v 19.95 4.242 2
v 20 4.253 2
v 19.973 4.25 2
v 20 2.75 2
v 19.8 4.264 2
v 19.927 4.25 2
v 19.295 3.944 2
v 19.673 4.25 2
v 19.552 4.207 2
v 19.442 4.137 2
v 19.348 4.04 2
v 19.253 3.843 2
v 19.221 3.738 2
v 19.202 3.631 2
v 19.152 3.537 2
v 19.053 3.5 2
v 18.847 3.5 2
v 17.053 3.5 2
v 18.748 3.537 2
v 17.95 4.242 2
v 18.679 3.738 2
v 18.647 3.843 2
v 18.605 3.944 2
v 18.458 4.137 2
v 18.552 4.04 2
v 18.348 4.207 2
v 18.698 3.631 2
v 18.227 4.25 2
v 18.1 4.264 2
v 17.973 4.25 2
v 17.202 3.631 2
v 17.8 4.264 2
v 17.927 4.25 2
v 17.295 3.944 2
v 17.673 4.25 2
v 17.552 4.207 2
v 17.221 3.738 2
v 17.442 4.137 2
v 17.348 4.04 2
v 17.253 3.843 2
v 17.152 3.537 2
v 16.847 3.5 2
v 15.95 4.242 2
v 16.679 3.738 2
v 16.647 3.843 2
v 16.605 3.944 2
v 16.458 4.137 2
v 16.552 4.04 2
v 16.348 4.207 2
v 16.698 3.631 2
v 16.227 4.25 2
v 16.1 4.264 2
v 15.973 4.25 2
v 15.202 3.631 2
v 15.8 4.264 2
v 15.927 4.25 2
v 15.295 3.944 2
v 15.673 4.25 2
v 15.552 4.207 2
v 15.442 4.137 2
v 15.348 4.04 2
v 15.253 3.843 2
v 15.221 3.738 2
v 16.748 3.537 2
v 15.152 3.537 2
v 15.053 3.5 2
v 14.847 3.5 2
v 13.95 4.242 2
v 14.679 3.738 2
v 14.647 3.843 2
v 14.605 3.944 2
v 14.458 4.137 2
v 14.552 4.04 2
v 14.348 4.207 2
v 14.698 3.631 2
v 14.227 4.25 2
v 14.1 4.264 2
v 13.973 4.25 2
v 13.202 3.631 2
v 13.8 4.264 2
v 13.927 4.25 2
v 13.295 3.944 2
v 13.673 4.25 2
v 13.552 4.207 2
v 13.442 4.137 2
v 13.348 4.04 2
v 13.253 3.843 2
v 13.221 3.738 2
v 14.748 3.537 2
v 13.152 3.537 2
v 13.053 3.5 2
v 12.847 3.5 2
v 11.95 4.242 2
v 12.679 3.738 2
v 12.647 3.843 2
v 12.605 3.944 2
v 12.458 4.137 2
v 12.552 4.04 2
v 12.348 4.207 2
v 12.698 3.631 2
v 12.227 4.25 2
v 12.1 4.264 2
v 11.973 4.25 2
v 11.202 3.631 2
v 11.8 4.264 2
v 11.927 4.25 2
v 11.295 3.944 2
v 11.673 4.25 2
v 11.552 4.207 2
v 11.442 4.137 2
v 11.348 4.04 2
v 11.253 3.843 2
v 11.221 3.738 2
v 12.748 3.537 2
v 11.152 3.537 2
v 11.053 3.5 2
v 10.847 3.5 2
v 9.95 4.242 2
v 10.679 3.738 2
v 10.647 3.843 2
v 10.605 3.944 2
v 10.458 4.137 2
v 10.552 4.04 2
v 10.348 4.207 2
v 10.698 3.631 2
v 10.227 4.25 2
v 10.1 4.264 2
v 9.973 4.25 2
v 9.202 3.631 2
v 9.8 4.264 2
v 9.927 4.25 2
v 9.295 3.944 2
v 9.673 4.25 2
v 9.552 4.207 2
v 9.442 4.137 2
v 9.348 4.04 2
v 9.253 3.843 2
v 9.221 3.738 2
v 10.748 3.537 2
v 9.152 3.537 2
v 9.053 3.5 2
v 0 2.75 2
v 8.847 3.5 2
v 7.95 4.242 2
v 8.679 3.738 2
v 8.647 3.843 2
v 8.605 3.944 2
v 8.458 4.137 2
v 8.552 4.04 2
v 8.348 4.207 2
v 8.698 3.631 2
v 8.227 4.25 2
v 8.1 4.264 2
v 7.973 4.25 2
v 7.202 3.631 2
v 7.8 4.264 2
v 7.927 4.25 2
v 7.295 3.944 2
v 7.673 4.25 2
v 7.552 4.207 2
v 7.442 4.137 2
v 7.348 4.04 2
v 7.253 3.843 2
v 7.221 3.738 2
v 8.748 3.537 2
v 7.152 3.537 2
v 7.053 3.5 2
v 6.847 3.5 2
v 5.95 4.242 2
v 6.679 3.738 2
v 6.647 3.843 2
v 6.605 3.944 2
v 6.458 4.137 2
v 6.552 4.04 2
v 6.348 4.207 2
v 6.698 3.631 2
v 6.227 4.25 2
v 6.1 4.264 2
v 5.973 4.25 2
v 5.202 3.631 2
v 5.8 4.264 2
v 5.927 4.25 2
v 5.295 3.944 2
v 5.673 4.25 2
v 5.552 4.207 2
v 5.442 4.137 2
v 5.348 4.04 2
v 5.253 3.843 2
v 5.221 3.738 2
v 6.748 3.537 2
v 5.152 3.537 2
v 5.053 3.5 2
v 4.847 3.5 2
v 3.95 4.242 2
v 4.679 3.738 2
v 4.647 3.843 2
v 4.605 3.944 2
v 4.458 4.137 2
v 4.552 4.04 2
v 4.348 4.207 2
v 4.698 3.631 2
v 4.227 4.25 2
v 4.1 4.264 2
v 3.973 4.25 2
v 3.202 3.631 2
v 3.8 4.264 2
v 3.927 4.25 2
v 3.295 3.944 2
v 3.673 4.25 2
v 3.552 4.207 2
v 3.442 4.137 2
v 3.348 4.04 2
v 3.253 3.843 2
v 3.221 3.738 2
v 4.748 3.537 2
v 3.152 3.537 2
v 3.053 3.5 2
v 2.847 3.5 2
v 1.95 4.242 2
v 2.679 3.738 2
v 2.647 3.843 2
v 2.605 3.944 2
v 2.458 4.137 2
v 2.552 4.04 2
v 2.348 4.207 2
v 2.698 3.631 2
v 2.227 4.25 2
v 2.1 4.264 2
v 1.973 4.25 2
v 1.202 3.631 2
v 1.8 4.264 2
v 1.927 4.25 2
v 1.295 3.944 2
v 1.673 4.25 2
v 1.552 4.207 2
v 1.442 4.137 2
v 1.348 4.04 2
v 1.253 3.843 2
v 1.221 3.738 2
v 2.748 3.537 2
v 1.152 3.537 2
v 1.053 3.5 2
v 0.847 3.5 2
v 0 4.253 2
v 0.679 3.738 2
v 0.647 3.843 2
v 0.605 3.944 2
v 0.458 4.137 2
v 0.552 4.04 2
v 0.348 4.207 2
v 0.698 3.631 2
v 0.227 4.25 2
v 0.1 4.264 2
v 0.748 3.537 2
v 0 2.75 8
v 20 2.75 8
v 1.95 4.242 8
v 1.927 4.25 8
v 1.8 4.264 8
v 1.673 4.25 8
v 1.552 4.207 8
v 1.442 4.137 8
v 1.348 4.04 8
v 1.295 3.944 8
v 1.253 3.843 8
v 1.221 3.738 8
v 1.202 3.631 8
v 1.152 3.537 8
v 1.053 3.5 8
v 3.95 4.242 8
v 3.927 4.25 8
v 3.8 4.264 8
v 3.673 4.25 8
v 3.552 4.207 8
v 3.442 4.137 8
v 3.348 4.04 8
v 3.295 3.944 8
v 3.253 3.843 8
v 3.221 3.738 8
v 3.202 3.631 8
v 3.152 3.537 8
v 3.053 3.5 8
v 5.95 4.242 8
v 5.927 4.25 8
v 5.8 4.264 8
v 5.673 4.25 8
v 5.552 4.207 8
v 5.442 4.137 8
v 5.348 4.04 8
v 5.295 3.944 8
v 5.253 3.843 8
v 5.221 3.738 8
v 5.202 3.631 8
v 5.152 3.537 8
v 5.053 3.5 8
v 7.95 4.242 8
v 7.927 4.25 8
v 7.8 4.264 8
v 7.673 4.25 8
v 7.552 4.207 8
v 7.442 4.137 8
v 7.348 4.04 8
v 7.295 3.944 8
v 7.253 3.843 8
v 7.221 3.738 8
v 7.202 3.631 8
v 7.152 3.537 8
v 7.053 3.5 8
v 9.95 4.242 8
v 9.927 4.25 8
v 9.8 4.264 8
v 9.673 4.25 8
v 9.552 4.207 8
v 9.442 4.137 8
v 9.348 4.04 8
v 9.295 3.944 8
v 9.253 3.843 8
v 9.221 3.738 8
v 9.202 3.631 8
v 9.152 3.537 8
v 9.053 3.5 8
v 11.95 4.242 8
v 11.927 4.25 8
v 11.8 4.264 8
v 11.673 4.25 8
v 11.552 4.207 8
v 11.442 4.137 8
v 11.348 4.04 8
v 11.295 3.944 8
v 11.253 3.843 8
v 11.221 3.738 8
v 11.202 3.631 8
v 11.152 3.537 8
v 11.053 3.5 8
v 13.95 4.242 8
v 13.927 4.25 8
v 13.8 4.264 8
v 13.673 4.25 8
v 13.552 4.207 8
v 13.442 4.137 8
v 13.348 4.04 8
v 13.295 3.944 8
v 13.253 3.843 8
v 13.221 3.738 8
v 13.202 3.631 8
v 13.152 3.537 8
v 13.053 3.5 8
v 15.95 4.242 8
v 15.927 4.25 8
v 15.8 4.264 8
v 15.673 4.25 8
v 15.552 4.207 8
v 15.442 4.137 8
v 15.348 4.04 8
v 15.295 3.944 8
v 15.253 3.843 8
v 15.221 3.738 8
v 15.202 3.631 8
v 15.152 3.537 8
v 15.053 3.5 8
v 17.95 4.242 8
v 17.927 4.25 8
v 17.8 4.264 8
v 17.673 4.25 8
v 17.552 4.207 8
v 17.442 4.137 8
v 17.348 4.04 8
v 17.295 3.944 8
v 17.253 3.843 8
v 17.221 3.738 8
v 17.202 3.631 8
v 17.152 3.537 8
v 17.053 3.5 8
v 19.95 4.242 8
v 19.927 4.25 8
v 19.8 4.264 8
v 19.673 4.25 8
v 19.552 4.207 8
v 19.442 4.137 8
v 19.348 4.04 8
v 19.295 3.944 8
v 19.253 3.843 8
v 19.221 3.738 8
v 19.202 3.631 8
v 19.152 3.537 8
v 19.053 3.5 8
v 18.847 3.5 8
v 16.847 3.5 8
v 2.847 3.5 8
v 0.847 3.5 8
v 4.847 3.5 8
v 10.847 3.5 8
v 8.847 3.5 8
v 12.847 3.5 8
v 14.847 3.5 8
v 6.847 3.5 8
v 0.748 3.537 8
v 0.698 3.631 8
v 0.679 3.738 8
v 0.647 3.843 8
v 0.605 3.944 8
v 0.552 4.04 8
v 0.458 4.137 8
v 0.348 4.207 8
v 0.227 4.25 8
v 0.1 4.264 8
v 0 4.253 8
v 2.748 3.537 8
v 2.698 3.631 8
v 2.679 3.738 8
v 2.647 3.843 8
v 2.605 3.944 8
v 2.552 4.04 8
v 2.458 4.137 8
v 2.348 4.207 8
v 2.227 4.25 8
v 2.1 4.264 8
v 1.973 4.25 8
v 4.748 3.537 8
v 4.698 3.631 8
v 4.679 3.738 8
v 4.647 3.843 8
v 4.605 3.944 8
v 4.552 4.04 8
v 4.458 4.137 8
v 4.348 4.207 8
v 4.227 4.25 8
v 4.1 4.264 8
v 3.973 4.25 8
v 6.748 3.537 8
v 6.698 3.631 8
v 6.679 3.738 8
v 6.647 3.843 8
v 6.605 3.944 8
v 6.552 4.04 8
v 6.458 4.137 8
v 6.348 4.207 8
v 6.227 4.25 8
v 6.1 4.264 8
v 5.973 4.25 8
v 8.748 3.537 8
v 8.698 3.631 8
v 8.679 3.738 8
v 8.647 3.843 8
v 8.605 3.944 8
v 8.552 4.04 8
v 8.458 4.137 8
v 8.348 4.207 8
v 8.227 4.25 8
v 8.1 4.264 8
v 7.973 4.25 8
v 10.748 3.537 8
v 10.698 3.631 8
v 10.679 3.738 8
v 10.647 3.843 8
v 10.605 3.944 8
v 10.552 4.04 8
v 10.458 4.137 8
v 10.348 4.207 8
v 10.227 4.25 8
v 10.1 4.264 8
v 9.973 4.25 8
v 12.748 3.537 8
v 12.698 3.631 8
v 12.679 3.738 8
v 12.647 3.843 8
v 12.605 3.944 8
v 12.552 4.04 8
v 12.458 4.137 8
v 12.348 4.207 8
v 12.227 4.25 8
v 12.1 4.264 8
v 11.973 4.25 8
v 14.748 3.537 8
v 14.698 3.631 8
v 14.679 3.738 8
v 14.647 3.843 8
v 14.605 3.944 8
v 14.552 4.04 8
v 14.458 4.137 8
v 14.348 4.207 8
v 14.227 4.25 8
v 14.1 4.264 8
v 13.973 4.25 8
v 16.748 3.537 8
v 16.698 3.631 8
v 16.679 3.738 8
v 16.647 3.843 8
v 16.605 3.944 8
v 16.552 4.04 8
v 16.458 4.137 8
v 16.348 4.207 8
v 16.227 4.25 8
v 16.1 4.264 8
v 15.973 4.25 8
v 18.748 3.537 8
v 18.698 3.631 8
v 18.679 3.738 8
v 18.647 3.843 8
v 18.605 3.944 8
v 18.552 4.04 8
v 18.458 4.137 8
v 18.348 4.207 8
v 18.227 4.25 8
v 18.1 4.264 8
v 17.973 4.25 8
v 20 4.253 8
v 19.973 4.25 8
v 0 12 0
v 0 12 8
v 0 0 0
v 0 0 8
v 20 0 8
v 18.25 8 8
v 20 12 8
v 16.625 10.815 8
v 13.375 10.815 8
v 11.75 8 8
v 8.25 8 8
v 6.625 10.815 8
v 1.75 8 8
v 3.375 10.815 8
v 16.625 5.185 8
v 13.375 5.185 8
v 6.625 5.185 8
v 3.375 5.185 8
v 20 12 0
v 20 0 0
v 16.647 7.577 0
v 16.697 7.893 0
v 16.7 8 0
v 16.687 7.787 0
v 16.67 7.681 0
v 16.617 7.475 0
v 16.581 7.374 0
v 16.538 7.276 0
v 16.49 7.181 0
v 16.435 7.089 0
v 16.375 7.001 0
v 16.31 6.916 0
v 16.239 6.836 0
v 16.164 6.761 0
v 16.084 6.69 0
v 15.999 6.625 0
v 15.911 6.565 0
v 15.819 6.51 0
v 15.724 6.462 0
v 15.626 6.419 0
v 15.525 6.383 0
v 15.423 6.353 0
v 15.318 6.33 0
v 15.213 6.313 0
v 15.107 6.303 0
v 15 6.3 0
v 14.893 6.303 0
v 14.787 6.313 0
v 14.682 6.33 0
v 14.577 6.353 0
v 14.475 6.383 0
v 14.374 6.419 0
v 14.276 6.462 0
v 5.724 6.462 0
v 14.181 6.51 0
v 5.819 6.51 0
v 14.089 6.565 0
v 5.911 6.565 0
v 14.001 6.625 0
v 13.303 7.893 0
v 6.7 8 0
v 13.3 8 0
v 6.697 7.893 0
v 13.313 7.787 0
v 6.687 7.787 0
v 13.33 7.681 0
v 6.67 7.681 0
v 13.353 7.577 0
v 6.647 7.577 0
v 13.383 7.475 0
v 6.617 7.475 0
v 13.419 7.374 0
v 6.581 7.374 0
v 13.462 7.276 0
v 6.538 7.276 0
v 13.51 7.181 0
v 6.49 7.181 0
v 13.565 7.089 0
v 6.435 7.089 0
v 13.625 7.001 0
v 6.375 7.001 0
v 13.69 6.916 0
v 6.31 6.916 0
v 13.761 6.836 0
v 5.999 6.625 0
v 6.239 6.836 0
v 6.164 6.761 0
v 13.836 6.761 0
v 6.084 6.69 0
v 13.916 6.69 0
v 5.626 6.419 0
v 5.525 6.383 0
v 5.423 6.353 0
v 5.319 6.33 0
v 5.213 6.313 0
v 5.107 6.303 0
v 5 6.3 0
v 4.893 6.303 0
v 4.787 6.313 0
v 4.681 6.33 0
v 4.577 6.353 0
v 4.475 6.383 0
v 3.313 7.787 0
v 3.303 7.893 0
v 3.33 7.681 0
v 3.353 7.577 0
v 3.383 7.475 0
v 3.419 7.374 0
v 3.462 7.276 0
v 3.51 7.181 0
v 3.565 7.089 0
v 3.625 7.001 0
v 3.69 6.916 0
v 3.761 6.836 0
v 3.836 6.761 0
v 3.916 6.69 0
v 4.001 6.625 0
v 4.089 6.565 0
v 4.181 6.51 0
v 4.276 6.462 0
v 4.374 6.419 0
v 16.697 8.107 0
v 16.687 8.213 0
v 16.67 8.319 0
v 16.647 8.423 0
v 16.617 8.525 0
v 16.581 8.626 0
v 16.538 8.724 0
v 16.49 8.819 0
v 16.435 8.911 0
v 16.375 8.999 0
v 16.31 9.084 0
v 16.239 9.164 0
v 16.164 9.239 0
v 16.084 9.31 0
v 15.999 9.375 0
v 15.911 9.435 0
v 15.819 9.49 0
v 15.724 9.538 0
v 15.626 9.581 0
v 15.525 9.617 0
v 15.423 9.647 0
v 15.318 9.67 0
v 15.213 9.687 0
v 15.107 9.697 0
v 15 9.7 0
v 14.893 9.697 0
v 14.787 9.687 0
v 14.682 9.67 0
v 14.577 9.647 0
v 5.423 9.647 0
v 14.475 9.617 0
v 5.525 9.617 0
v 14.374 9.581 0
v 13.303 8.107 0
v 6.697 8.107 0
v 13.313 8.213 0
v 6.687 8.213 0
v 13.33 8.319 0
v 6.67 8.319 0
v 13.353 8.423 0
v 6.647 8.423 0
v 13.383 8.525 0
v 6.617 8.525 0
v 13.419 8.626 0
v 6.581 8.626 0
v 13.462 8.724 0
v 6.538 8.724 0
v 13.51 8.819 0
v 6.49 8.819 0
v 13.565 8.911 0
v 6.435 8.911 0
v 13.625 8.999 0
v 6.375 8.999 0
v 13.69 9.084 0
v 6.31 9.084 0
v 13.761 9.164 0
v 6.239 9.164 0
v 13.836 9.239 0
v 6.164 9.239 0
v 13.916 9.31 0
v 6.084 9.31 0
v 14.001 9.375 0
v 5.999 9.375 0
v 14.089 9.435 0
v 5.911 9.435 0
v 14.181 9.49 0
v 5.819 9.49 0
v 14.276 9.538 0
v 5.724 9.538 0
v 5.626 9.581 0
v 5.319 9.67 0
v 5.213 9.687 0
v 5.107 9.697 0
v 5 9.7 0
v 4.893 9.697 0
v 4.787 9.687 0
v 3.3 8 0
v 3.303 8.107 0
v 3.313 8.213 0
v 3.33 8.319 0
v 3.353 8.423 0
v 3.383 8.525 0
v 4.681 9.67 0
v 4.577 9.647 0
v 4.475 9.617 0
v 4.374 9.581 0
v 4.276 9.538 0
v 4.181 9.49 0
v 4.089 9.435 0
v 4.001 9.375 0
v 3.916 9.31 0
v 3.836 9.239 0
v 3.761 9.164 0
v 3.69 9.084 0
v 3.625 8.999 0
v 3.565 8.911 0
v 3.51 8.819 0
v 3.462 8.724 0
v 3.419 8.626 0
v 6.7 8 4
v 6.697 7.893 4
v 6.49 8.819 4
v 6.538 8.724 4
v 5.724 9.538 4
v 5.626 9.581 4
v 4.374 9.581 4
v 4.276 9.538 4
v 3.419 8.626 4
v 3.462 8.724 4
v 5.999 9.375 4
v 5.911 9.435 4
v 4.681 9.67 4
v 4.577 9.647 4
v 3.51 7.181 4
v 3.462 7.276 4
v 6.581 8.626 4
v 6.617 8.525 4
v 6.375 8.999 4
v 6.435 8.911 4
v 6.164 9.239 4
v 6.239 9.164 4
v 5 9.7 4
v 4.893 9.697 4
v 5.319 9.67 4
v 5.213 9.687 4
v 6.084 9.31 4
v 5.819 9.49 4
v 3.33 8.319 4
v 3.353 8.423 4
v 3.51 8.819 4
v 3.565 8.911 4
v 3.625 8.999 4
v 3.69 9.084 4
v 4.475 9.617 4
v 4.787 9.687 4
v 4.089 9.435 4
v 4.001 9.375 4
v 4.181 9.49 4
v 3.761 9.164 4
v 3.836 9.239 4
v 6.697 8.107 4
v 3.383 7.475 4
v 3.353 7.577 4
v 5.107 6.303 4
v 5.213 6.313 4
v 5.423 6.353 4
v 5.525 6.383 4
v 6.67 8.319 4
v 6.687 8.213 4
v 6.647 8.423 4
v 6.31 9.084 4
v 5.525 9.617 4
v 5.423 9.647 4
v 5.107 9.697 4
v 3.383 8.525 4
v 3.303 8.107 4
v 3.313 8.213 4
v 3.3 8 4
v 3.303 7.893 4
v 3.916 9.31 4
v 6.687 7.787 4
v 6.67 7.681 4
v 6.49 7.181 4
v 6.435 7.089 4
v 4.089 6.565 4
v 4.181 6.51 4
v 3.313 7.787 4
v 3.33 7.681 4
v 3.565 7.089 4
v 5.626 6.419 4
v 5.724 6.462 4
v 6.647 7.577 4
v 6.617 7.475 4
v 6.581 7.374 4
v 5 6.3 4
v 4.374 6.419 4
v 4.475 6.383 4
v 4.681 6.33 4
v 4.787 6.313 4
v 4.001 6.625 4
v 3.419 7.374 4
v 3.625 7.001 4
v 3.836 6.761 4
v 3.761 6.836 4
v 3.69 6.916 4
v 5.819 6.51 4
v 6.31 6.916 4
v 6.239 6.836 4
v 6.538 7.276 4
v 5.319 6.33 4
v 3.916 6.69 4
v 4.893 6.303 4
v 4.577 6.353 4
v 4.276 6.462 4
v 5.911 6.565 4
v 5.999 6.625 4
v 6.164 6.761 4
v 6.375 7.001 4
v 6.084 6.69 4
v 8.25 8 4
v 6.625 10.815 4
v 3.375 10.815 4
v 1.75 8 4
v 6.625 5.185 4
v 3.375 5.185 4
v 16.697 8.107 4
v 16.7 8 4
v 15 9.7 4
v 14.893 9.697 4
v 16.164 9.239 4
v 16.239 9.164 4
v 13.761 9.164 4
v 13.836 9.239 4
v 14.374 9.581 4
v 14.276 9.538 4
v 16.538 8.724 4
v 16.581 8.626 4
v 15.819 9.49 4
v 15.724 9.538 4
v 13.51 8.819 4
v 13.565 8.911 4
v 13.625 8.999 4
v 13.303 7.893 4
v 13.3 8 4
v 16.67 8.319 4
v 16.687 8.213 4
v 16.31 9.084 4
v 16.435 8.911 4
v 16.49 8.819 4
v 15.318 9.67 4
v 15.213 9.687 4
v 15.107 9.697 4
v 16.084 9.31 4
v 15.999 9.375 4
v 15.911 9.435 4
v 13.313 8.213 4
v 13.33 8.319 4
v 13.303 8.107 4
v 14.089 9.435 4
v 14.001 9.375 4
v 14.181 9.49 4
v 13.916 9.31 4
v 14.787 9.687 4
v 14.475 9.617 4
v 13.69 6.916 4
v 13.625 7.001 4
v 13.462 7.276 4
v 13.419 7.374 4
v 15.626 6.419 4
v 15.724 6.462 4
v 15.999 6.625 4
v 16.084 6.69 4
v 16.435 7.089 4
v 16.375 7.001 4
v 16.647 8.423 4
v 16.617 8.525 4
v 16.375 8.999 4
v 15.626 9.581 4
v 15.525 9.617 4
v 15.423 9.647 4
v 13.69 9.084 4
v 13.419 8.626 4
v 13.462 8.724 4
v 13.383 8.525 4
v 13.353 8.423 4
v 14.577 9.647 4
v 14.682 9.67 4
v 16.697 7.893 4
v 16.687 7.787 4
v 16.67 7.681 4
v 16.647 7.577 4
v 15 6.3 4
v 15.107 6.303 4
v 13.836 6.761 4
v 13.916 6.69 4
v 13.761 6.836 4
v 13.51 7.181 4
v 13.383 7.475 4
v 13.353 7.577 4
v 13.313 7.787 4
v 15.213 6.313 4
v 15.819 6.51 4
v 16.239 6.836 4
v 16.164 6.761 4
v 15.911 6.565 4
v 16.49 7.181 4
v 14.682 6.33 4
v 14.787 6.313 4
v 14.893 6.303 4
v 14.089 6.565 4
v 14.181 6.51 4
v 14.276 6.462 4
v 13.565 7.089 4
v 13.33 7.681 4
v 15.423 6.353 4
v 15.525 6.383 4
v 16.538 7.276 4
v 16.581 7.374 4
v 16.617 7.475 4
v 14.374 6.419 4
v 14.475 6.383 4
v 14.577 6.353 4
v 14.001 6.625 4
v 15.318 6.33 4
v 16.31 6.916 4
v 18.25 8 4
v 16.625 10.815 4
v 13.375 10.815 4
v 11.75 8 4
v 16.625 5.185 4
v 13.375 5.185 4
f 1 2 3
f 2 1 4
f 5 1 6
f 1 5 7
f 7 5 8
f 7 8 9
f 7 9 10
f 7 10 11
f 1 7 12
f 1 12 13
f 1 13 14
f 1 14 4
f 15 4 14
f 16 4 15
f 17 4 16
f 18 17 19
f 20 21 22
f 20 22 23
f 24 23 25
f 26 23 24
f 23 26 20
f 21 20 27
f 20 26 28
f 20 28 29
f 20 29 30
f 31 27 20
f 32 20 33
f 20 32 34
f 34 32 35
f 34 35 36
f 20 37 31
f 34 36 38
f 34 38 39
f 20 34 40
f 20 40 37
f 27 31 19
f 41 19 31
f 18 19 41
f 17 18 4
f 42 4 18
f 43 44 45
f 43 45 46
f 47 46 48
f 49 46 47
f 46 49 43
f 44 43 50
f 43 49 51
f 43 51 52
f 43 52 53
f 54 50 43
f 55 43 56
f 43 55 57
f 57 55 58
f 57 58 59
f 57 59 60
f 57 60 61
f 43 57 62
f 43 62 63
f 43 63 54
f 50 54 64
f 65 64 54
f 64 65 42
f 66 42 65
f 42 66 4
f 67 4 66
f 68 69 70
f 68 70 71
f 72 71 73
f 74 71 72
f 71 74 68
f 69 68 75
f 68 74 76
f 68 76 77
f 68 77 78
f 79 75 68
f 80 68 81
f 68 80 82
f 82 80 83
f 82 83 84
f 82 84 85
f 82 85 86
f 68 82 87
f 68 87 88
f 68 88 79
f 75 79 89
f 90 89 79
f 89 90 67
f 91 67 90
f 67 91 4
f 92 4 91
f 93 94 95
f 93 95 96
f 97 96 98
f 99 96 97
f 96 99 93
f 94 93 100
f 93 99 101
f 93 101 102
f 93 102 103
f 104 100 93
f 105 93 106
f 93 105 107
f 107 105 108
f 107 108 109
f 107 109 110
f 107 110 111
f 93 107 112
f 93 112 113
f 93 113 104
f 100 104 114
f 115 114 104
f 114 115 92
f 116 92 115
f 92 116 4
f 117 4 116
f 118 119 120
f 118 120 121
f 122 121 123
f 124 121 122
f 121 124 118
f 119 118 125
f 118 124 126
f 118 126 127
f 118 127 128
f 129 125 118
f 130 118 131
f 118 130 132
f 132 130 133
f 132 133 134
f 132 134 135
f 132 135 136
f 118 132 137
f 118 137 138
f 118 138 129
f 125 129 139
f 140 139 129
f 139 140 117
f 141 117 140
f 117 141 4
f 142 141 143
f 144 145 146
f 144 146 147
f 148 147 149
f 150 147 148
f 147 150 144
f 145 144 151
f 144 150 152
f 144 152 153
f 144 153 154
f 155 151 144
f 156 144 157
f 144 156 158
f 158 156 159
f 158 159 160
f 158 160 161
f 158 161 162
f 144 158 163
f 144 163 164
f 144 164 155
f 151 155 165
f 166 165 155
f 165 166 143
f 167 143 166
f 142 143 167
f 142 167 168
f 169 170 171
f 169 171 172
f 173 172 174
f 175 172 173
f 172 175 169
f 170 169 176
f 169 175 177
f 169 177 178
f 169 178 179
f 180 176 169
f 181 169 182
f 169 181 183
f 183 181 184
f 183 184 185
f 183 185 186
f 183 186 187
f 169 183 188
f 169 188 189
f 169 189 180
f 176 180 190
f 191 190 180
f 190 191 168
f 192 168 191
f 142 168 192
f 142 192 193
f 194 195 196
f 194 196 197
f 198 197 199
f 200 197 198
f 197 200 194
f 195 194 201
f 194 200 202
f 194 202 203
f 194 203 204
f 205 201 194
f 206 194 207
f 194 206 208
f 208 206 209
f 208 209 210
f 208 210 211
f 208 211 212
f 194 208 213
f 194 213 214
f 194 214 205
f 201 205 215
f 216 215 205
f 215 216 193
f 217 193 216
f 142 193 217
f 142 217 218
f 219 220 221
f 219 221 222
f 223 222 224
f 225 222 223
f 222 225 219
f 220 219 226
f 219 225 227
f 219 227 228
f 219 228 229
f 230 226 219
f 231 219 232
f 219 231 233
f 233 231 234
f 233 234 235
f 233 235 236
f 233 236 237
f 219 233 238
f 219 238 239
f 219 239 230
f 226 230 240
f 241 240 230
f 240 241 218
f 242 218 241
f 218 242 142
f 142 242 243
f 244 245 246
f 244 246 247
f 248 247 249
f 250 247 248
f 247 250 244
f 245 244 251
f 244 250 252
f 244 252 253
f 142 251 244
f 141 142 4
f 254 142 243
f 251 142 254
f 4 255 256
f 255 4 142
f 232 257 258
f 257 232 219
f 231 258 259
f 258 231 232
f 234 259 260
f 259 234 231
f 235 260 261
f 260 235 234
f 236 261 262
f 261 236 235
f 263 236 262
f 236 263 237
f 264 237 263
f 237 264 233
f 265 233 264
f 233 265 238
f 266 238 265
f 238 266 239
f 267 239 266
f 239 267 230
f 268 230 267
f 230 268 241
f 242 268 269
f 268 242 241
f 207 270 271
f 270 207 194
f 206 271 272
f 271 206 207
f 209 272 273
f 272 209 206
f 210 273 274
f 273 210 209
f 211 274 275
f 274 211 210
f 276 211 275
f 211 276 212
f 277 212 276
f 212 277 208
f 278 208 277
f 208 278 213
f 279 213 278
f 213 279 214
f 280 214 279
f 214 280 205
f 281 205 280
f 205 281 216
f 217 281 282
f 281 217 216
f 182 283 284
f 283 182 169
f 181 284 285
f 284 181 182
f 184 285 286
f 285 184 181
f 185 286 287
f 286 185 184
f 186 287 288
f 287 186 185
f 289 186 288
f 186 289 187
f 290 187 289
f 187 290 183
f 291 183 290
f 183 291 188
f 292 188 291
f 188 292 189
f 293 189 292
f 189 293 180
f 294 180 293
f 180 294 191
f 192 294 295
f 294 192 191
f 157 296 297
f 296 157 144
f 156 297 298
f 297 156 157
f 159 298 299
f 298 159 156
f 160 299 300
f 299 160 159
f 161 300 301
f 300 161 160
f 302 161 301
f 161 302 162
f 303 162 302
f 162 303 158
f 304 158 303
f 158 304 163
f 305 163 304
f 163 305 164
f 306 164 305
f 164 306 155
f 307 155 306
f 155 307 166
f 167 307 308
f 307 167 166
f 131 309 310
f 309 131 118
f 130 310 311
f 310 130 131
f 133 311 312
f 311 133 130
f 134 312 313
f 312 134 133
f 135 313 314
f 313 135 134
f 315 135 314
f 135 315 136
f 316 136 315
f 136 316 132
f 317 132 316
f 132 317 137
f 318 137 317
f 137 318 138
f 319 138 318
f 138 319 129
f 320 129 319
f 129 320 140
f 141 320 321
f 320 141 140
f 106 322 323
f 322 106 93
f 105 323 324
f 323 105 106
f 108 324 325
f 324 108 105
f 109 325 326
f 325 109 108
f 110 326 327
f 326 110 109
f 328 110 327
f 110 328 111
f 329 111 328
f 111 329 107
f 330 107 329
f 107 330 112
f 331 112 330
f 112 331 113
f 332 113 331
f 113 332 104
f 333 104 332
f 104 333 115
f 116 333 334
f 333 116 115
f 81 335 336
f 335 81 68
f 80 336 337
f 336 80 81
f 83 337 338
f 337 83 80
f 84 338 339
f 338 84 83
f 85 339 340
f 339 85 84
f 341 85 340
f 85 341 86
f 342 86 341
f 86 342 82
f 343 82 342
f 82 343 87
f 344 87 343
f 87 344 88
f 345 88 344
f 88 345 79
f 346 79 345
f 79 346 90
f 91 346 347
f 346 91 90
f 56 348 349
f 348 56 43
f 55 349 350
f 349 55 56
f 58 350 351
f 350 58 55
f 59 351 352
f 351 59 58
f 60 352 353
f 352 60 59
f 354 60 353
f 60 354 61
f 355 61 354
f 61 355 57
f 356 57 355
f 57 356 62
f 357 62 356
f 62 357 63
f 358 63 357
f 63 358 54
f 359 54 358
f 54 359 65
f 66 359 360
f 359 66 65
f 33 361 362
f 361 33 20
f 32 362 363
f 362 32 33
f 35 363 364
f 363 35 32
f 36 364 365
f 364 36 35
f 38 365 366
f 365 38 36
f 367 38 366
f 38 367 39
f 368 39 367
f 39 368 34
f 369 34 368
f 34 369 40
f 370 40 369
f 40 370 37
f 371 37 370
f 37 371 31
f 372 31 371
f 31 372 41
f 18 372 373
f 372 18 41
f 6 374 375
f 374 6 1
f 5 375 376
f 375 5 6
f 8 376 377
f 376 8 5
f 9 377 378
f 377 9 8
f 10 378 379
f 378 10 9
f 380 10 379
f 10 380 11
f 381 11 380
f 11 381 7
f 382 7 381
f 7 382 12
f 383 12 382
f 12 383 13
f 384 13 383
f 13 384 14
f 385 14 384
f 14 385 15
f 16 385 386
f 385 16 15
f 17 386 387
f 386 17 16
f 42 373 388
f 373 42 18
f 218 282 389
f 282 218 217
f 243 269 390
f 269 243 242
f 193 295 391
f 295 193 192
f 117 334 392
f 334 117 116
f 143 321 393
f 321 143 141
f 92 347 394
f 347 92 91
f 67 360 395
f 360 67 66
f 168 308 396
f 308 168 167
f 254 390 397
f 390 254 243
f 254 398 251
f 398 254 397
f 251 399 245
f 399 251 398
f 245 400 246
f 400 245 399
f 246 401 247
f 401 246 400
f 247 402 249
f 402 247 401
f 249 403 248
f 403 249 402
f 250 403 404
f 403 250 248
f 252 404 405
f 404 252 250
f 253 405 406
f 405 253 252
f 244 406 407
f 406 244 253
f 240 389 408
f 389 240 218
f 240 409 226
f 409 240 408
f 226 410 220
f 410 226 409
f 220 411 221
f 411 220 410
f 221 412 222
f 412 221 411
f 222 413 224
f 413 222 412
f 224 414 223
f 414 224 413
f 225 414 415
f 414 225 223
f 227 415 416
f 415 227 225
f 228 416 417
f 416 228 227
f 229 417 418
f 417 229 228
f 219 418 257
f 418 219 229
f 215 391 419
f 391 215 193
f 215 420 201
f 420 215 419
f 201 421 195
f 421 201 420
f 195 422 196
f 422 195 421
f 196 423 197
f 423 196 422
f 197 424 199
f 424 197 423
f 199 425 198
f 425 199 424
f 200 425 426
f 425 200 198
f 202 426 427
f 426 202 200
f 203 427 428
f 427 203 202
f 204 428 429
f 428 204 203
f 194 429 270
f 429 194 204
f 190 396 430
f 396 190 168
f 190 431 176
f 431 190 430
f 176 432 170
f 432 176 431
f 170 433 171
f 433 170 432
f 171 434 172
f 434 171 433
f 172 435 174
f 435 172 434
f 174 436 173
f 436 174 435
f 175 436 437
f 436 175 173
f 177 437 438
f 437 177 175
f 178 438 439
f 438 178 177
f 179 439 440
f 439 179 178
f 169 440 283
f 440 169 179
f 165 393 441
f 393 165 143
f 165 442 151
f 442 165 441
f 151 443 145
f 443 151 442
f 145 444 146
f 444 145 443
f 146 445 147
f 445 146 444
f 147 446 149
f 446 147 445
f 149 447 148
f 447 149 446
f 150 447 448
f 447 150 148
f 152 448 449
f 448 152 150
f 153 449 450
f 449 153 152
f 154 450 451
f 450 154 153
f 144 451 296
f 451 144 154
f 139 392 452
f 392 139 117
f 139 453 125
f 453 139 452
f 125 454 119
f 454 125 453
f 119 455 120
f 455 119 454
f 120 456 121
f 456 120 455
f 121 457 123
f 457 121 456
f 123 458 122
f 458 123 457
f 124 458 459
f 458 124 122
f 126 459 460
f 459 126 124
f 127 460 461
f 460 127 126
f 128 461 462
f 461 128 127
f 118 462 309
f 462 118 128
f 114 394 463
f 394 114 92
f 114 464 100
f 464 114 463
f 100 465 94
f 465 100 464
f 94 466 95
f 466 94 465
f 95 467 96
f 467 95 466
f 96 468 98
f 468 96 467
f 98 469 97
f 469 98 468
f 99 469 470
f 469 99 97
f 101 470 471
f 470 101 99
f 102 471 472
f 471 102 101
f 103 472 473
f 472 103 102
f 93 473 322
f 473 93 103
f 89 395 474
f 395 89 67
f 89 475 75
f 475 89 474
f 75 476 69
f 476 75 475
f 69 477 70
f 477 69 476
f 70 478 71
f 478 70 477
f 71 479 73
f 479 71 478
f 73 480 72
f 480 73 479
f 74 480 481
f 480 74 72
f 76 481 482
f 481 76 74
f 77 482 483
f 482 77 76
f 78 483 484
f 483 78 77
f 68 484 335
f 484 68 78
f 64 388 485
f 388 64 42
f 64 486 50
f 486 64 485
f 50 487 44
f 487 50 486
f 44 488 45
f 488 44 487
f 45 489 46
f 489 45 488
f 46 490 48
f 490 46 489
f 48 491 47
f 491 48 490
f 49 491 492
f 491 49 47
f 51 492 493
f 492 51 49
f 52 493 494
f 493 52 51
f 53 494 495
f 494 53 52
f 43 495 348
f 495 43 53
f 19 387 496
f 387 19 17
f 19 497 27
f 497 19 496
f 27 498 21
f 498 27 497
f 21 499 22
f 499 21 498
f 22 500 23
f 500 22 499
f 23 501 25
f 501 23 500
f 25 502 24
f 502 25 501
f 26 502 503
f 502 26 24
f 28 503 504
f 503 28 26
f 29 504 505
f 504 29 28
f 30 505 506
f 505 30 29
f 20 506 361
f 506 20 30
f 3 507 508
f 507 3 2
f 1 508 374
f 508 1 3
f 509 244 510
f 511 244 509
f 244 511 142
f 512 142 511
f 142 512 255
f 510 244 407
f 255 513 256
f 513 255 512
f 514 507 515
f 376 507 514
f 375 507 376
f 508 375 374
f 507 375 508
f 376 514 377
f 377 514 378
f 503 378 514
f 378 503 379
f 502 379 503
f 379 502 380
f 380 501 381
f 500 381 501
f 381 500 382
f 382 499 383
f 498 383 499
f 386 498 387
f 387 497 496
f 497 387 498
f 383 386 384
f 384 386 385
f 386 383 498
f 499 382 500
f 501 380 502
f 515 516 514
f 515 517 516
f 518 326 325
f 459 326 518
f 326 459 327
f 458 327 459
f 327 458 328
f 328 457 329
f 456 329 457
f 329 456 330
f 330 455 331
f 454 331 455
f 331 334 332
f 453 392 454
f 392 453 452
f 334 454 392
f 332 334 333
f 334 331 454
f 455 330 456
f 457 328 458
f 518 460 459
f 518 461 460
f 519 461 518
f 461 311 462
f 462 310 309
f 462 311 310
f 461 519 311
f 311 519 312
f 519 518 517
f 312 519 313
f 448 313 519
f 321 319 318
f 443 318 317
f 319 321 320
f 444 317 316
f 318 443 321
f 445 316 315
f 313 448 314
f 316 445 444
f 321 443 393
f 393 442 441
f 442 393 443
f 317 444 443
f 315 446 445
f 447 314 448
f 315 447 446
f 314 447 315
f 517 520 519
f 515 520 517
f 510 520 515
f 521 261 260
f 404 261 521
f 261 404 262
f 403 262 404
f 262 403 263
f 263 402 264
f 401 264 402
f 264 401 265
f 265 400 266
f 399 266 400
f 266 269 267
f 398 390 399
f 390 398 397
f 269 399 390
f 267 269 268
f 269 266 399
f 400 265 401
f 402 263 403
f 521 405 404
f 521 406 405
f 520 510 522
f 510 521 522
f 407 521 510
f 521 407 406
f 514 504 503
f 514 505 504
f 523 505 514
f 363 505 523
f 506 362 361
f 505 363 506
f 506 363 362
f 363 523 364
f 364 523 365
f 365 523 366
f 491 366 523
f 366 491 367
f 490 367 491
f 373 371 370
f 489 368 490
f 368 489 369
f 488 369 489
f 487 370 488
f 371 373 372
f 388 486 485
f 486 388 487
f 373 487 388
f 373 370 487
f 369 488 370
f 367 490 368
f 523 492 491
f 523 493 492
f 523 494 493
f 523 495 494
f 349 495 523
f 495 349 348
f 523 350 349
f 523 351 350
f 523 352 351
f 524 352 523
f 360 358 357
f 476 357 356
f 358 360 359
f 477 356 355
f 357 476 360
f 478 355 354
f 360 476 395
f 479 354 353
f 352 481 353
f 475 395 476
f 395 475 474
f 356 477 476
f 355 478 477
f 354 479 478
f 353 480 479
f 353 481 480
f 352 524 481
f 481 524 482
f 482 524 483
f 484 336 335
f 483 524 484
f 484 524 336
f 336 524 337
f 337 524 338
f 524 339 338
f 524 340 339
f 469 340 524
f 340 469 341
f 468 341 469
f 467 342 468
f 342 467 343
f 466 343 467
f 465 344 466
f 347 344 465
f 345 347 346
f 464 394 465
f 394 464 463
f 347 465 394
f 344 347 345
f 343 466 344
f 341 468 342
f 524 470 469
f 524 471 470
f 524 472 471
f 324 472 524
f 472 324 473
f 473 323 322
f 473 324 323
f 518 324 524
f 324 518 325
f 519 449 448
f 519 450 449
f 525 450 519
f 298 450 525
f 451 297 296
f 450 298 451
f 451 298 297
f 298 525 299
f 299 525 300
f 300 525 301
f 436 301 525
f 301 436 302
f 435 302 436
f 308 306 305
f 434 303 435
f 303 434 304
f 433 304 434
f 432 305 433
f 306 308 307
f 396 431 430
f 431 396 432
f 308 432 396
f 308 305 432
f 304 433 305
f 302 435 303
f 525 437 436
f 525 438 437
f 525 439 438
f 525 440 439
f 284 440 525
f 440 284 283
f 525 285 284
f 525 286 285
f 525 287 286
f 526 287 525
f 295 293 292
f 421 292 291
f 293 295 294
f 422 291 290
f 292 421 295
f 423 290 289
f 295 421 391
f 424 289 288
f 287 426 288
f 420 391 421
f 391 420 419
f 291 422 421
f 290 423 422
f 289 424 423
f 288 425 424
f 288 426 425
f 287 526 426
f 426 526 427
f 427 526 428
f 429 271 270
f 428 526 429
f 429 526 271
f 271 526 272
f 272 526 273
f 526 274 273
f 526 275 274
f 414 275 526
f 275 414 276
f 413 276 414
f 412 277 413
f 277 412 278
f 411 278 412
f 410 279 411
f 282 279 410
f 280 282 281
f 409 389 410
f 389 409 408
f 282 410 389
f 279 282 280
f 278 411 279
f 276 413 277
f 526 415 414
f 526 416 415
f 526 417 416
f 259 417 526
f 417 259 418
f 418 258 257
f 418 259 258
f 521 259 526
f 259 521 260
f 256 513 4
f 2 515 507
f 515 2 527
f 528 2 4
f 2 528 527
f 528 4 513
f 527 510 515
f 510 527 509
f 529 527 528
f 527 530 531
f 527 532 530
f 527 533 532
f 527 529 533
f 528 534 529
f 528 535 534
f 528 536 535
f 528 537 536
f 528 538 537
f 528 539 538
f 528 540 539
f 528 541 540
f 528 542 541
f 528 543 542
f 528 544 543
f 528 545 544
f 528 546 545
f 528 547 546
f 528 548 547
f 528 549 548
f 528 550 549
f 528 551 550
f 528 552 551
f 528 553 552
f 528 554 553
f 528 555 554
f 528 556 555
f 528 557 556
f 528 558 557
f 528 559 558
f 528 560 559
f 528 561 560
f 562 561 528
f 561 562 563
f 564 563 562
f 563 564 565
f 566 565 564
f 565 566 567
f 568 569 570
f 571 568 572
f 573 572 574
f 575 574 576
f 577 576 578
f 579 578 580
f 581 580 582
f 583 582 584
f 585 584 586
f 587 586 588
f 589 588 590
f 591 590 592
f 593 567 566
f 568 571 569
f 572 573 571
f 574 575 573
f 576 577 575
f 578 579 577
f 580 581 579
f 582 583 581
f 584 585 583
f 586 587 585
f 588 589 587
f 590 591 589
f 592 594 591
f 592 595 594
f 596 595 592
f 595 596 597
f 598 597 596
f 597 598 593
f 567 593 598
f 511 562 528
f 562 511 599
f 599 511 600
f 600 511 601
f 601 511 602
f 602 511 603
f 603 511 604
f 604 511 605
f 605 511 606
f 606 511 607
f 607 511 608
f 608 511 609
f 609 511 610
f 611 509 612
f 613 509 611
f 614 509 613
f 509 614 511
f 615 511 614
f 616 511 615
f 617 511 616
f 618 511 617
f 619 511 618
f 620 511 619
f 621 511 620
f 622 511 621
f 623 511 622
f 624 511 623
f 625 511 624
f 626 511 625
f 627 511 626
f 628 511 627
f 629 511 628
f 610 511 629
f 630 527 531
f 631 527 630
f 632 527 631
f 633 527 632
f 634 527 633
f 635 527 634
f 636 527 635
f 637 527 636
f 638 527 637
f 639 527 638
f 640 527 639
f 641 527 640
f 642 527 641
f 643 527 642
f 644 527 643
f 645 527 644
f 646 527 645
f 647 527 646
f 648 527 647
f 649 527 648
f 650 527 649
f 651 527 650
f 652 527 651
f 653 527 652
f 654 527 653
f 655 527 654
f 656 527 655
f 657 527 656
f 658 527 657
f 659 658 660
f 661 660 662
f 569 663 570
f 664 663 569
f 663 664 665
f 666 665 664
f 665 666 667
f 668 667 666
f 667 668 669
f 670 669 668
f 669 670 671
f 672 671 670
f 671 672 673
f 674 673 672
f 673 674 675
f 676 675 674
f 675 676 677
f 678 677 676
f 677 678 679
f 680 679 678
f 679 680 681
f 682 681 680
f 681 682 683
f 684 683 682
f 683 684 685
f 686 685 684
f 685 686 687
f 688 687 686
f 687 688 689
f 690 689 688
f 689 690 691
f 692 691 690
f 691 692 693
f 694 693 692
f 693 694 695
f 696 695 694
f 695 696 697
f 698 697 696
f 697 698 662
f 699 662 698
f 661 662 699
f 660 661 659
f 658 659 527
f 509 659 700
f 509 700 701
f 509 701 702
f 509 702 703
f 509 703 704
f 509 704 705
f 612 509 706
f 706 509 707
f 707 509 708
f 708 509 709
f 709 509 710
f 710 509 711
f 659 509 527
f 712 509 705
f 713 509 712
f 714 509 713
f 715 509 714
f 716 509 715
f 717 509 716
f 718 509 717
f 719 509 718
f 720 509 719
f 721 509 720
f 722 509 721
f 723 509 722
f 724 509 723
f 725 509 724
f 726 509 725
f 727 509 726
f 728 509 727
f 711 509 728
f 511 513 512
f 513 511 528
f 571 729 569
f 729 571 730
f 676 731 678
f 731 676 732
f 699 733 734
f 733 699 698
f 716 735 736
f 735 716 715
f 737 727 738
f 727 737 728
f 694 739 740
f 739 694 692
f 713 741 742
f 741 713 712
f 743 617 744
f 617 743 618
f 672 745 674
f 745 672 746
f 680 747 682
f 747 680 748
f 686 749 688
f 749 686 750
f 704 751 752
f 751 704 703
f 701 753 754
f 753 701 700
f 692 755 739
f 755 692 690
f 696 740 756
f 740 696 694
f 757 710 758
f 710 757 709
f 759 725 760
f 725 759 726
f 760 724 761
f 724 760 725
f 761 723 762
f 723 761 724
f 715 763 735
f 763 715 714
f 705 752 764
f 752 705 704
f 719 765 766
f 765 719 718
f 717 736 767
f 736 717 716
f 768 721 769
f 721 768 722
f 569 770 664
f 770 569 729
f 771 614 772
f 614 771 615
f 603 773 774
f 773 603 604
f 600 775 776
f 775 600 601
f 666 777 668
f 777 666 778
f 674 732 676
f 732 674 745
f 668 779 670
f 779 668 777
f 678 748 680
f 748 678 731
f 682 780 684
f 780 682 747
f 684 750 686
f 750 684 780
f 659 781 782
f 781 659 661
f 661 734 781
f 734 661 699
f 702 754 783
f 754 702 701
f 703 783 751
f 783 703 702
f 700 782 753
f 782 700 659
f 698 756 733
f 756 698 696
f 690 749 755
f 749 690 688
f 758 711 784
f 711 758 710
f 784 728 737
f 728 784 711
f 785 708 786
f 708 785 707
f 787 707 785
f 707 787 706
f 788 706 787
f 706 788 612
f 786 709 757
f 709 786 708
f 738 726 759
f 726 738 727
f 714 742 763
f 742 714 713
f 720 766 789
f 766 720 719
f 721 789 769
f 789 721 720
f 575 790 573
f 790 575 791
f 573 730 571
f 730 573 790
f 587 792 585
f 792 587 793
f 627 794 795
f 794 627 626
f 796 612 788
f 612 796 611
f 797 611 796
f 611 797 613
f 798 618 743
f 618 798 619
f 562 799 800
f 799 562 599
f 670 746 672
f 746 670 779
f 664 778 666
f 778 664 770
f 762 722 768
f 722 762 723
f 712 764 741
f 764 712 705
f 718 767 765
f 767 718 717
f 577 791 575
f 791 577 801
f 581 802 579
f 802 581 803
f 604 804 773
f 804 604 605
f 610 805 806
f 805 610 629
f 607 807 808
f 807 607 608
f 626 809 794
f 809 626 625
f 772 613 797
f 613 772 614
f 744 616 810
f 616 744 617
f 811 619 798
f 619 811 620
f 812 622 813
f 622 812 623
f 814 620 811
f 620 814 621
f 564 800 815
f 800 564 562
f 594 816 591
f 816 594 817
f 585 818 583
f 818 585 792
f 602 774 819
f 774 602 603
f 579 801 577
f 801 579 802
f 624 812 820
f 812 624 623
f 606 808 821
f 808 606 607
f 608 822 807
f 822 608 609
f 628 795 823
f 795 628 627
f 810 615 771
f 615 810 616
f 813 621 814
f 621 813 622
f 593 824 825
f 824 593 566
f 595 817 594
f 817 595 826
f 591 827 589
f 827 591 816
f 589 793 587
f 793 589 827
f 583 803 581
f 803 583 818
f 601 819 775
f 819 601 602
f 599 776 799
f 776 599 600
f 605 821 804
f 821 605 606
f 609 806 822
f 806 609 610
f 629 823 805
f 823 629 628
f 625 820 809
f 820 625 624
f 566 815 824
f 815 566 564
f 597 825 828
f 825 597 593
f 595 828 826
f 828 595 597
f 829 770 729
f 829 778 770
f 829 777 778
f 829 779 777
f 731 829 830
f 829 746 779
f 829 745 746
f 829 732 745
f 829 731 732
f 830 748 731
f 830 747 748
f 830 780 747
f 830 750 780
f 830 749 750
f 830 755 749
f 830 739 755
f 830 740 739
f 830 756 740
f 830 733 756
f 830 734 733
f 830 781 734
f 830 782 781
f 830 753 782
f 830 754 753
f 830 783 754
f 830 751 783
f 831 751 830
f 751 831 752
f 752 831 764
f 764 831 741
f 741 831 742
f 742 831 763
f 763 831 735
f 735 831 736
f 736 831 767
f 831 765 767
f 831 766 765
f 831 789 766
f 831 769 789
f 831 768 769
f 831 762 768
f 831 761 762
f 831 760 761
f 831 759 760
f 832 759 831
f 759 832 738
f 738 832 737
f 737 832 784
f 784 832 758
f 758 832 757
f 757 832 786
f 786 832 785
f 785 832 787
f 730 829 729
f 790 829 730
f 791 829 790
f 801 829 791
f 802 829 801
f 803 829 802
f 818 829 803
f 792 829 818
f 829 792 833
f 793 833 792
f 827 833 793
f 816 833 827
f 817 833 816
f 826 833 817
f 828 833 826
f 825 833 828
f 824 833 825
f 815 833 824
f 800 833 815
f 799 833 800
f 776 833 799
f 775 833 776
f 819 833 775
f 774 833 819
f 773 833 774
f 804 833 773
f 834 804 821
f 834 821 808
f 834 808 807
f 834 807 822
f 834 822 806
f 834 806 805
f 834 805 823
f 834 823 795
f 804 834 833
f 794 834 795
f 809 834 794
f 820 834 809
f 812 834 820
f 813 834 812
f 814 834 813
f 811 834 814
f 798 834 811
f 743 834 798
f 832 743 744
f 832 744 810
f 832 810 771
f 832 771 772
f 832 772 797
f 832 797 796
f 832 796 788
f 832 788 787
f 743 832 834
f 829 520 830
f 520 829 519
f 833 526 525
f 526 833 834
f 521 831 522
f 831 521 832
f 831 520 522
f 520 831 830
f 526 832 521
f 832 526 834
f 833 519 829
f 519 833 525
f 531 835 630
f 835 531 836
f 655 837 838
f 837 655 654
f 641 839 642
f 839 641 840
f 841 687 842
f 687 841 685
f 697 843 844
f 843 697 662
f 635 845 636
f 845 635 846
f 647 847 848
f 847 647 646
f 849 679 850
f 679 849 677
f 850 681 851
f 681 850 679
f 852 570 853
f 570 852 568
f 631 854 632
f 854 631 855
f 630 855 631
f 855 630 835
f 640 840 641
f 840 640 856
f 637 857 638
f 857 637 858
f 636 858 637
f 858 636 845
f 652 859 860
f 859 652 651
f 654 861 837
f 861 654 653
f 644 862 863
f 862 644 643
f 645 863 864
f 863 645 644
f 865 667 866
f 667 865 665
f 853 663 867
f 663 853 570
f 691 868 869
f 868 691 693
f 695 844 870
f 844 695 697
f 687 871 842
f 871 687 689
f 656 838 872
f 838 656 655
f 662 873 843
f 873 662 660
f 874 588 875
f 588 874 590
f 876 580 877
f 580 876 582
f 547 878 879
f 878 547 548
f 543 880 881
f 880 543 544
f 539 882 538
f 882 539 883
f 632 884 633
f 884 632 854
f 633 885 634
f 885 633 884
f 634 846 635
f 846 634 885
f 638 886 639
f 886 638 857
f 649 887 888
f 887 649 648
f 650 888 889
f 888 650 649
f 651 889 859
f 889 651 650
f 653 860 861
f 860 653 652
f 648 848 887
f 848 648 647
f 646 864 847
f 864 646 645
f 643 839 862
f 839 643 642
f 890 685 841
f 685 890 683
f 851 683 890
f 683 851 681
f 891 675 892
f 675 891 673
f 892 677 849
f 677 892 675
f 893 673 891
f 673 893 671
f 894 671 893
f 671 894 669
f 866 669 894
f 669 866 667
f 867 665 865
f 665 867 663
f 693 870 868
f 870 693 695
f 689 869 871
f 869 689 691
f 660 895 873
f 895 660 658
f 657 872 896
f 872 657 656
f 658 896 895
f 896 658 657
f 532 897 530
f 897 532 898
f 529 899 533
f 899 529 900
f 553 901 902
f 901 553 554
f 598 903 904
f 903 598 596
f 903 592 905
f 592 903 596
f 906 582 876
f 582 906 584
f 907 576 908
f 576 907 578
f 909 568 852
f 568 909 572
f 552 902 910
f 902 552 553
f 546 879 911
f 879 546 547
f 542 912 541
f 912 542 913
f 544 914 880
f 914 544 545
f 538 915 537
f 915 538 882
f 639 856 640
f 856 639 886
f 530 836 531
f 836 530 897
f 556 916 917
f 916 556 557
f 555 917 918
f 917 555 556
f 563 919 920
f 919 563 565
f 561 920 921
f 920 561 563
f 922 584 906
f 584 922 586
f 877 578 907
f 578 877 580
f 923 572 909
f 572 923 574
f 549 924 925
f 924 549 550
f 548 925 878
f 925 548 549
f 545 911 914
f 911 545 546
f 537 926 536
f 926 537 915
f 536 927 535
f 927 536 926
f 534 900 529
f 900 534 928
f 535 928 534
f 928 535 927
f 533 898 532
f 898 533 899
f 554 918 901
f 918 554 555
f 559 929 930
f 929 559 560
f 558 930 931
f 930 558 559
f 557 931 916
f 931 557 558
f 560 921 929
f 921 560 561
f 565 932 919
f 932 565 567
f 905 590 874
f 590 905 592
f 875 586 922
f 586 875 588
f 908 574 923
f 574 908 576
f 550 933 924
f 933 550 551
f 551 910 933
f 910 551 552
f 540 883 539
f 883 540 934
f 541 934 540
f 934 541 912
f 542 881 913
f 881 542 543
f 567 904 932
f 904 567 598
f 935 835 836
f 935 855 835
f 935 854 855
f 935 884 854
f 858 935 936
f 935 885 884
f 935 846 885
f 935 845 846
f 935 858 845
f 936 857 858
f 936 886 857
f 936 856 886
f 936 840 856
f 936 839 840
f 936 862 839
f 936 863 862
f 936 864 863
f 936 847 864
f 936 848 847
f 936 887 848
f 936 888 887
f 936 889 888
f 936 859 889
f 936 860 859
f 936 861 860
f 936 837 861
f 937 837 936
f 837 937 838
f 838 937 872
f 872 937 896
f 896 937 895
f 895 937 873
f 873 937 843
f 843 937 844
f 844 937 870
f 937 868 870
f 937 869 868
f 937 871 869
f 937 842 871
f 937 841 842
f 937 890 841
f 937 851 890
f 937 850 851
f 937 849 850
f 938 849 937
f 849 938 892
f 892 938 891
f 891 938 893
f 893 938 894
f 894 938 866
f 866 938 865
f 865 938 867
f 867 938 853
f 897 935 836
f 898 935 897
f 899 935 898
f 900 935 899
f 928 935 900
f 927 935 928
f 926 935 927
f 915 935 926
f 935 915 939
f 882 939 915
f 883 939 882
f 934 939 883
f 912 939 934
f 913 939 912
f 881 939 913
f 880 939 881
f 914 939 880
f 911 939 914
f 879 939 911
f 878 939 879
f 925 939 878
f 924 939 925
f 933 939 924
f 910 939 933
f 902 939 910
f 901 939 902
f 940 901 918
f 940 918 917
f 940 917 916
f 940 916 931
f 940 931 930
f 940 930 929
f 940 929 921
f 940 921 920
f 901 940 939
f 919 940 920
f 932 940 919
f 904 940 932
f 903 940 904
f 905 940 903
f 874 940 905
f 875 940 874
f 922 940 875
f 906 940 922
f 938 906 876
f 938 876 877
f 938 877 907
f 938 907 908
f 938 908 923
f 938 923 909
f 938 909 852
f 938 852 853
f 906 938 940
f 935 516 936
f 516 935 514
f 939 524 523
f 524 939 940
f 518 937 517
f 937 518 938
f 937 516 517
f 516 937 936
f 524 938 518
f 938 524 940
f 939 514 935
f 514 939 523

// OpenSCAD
$fn = 100;
// profiles
tGT2_2=0;

bw = 11.5;

difference()
{
    union()
    {
        cube([20, 12, 8], false);
    }
    translate([-2, 3.35, 6]) belt_len(profile = tGT2_2, belt_width = 8, len = 100);
    translate([-2.2, 3.5, 6]) belt_len(profile = tGT2_2, belt_width = 8, len = 100);
    translate([-1.9, 3.5, 6]) belt_len(profile = tGT2_2, belt_width = 8, len = 100);
    
    translate([5, 8, -1]) cylinder(8, 1.7, 1.7);
    translate([5, 8, 4]) cylinder(8, 3.25, 3.25, $fn = 6);
    translate([15, 8, -1]) cylinder(8, 1.7, 1.7);
    translate([15, 8, 4]) cylinder(8, 3.25, 3.25, $fn = 6);
}


//Outer Module
module belt_len(profile = tGT2_2, belt_width = 6, len = 10){
	_belt_len(prf=profile,len = len,bwdth = belt_width);
}

//inner module
module _belt_len(prf = -1, len = 10, bwdth = 5) {

	n=ceil(len/tpitch[prf]);

	translate ([0,0,-bwdth/2]) intersection() {
		union(){
			for( i = [0:n]) {
				draw_tooth(prf,i,bwdth);
			}
		translate([-1,-bk_thick[prf],0])cube([len+1,bk_thick[prf],bwdth]);
		}
	translate([0,-bk_thick[prf],0])cube([len,max_h[prf]+bk_thick[prf],bwdth]);
	}
}

module draw_tooth(prf,i,bwdth) {
	translate([tpitch[prf]*i,0,0])
	linear_extrude(height=bwdth) polygon(pf_GT2_2);
}

/************************************
 *				DATA TABLES					*
 ************************************/
tpitch = [2,2.5,5,10,2.032];
bk_thick=[0.6,0.6,1,2,0.64];
max_h=[0.76447, 0.699911, 1.189895, 2.499784, 0.508035];

pf_GT2_2=  [[ 0.747183,-0.5     ],[ 0.747183, 0       ],[ 0.647876, 0.037218],
				[ 0.598311, 0.130528],[ 0.578556, 0.238423],[ 0.547158, 0.343077],
				[ 0.504649, 0.443762],[ 0.451556, 0.53975 ],[ 0.358229, 0.636924],
				[ 0.2484  , 0.707276],[ 0.127259, 0.750044],[ 0       , 0.76447 ],
				[-0.127259, 0.750044],[-0.2484  , 0.707276],[-0.358229, 0.636924],
				[-0.451556, 0.53975 ],[-0.504797, 0.443762],[-0.547291, 0.343077],
				[-0.578605, 0.238423],[-0.598311, 0.130528],[-0.648009, 0.037218],
				[-0.747183, 0       ],[-0.747183,-0.5]];
